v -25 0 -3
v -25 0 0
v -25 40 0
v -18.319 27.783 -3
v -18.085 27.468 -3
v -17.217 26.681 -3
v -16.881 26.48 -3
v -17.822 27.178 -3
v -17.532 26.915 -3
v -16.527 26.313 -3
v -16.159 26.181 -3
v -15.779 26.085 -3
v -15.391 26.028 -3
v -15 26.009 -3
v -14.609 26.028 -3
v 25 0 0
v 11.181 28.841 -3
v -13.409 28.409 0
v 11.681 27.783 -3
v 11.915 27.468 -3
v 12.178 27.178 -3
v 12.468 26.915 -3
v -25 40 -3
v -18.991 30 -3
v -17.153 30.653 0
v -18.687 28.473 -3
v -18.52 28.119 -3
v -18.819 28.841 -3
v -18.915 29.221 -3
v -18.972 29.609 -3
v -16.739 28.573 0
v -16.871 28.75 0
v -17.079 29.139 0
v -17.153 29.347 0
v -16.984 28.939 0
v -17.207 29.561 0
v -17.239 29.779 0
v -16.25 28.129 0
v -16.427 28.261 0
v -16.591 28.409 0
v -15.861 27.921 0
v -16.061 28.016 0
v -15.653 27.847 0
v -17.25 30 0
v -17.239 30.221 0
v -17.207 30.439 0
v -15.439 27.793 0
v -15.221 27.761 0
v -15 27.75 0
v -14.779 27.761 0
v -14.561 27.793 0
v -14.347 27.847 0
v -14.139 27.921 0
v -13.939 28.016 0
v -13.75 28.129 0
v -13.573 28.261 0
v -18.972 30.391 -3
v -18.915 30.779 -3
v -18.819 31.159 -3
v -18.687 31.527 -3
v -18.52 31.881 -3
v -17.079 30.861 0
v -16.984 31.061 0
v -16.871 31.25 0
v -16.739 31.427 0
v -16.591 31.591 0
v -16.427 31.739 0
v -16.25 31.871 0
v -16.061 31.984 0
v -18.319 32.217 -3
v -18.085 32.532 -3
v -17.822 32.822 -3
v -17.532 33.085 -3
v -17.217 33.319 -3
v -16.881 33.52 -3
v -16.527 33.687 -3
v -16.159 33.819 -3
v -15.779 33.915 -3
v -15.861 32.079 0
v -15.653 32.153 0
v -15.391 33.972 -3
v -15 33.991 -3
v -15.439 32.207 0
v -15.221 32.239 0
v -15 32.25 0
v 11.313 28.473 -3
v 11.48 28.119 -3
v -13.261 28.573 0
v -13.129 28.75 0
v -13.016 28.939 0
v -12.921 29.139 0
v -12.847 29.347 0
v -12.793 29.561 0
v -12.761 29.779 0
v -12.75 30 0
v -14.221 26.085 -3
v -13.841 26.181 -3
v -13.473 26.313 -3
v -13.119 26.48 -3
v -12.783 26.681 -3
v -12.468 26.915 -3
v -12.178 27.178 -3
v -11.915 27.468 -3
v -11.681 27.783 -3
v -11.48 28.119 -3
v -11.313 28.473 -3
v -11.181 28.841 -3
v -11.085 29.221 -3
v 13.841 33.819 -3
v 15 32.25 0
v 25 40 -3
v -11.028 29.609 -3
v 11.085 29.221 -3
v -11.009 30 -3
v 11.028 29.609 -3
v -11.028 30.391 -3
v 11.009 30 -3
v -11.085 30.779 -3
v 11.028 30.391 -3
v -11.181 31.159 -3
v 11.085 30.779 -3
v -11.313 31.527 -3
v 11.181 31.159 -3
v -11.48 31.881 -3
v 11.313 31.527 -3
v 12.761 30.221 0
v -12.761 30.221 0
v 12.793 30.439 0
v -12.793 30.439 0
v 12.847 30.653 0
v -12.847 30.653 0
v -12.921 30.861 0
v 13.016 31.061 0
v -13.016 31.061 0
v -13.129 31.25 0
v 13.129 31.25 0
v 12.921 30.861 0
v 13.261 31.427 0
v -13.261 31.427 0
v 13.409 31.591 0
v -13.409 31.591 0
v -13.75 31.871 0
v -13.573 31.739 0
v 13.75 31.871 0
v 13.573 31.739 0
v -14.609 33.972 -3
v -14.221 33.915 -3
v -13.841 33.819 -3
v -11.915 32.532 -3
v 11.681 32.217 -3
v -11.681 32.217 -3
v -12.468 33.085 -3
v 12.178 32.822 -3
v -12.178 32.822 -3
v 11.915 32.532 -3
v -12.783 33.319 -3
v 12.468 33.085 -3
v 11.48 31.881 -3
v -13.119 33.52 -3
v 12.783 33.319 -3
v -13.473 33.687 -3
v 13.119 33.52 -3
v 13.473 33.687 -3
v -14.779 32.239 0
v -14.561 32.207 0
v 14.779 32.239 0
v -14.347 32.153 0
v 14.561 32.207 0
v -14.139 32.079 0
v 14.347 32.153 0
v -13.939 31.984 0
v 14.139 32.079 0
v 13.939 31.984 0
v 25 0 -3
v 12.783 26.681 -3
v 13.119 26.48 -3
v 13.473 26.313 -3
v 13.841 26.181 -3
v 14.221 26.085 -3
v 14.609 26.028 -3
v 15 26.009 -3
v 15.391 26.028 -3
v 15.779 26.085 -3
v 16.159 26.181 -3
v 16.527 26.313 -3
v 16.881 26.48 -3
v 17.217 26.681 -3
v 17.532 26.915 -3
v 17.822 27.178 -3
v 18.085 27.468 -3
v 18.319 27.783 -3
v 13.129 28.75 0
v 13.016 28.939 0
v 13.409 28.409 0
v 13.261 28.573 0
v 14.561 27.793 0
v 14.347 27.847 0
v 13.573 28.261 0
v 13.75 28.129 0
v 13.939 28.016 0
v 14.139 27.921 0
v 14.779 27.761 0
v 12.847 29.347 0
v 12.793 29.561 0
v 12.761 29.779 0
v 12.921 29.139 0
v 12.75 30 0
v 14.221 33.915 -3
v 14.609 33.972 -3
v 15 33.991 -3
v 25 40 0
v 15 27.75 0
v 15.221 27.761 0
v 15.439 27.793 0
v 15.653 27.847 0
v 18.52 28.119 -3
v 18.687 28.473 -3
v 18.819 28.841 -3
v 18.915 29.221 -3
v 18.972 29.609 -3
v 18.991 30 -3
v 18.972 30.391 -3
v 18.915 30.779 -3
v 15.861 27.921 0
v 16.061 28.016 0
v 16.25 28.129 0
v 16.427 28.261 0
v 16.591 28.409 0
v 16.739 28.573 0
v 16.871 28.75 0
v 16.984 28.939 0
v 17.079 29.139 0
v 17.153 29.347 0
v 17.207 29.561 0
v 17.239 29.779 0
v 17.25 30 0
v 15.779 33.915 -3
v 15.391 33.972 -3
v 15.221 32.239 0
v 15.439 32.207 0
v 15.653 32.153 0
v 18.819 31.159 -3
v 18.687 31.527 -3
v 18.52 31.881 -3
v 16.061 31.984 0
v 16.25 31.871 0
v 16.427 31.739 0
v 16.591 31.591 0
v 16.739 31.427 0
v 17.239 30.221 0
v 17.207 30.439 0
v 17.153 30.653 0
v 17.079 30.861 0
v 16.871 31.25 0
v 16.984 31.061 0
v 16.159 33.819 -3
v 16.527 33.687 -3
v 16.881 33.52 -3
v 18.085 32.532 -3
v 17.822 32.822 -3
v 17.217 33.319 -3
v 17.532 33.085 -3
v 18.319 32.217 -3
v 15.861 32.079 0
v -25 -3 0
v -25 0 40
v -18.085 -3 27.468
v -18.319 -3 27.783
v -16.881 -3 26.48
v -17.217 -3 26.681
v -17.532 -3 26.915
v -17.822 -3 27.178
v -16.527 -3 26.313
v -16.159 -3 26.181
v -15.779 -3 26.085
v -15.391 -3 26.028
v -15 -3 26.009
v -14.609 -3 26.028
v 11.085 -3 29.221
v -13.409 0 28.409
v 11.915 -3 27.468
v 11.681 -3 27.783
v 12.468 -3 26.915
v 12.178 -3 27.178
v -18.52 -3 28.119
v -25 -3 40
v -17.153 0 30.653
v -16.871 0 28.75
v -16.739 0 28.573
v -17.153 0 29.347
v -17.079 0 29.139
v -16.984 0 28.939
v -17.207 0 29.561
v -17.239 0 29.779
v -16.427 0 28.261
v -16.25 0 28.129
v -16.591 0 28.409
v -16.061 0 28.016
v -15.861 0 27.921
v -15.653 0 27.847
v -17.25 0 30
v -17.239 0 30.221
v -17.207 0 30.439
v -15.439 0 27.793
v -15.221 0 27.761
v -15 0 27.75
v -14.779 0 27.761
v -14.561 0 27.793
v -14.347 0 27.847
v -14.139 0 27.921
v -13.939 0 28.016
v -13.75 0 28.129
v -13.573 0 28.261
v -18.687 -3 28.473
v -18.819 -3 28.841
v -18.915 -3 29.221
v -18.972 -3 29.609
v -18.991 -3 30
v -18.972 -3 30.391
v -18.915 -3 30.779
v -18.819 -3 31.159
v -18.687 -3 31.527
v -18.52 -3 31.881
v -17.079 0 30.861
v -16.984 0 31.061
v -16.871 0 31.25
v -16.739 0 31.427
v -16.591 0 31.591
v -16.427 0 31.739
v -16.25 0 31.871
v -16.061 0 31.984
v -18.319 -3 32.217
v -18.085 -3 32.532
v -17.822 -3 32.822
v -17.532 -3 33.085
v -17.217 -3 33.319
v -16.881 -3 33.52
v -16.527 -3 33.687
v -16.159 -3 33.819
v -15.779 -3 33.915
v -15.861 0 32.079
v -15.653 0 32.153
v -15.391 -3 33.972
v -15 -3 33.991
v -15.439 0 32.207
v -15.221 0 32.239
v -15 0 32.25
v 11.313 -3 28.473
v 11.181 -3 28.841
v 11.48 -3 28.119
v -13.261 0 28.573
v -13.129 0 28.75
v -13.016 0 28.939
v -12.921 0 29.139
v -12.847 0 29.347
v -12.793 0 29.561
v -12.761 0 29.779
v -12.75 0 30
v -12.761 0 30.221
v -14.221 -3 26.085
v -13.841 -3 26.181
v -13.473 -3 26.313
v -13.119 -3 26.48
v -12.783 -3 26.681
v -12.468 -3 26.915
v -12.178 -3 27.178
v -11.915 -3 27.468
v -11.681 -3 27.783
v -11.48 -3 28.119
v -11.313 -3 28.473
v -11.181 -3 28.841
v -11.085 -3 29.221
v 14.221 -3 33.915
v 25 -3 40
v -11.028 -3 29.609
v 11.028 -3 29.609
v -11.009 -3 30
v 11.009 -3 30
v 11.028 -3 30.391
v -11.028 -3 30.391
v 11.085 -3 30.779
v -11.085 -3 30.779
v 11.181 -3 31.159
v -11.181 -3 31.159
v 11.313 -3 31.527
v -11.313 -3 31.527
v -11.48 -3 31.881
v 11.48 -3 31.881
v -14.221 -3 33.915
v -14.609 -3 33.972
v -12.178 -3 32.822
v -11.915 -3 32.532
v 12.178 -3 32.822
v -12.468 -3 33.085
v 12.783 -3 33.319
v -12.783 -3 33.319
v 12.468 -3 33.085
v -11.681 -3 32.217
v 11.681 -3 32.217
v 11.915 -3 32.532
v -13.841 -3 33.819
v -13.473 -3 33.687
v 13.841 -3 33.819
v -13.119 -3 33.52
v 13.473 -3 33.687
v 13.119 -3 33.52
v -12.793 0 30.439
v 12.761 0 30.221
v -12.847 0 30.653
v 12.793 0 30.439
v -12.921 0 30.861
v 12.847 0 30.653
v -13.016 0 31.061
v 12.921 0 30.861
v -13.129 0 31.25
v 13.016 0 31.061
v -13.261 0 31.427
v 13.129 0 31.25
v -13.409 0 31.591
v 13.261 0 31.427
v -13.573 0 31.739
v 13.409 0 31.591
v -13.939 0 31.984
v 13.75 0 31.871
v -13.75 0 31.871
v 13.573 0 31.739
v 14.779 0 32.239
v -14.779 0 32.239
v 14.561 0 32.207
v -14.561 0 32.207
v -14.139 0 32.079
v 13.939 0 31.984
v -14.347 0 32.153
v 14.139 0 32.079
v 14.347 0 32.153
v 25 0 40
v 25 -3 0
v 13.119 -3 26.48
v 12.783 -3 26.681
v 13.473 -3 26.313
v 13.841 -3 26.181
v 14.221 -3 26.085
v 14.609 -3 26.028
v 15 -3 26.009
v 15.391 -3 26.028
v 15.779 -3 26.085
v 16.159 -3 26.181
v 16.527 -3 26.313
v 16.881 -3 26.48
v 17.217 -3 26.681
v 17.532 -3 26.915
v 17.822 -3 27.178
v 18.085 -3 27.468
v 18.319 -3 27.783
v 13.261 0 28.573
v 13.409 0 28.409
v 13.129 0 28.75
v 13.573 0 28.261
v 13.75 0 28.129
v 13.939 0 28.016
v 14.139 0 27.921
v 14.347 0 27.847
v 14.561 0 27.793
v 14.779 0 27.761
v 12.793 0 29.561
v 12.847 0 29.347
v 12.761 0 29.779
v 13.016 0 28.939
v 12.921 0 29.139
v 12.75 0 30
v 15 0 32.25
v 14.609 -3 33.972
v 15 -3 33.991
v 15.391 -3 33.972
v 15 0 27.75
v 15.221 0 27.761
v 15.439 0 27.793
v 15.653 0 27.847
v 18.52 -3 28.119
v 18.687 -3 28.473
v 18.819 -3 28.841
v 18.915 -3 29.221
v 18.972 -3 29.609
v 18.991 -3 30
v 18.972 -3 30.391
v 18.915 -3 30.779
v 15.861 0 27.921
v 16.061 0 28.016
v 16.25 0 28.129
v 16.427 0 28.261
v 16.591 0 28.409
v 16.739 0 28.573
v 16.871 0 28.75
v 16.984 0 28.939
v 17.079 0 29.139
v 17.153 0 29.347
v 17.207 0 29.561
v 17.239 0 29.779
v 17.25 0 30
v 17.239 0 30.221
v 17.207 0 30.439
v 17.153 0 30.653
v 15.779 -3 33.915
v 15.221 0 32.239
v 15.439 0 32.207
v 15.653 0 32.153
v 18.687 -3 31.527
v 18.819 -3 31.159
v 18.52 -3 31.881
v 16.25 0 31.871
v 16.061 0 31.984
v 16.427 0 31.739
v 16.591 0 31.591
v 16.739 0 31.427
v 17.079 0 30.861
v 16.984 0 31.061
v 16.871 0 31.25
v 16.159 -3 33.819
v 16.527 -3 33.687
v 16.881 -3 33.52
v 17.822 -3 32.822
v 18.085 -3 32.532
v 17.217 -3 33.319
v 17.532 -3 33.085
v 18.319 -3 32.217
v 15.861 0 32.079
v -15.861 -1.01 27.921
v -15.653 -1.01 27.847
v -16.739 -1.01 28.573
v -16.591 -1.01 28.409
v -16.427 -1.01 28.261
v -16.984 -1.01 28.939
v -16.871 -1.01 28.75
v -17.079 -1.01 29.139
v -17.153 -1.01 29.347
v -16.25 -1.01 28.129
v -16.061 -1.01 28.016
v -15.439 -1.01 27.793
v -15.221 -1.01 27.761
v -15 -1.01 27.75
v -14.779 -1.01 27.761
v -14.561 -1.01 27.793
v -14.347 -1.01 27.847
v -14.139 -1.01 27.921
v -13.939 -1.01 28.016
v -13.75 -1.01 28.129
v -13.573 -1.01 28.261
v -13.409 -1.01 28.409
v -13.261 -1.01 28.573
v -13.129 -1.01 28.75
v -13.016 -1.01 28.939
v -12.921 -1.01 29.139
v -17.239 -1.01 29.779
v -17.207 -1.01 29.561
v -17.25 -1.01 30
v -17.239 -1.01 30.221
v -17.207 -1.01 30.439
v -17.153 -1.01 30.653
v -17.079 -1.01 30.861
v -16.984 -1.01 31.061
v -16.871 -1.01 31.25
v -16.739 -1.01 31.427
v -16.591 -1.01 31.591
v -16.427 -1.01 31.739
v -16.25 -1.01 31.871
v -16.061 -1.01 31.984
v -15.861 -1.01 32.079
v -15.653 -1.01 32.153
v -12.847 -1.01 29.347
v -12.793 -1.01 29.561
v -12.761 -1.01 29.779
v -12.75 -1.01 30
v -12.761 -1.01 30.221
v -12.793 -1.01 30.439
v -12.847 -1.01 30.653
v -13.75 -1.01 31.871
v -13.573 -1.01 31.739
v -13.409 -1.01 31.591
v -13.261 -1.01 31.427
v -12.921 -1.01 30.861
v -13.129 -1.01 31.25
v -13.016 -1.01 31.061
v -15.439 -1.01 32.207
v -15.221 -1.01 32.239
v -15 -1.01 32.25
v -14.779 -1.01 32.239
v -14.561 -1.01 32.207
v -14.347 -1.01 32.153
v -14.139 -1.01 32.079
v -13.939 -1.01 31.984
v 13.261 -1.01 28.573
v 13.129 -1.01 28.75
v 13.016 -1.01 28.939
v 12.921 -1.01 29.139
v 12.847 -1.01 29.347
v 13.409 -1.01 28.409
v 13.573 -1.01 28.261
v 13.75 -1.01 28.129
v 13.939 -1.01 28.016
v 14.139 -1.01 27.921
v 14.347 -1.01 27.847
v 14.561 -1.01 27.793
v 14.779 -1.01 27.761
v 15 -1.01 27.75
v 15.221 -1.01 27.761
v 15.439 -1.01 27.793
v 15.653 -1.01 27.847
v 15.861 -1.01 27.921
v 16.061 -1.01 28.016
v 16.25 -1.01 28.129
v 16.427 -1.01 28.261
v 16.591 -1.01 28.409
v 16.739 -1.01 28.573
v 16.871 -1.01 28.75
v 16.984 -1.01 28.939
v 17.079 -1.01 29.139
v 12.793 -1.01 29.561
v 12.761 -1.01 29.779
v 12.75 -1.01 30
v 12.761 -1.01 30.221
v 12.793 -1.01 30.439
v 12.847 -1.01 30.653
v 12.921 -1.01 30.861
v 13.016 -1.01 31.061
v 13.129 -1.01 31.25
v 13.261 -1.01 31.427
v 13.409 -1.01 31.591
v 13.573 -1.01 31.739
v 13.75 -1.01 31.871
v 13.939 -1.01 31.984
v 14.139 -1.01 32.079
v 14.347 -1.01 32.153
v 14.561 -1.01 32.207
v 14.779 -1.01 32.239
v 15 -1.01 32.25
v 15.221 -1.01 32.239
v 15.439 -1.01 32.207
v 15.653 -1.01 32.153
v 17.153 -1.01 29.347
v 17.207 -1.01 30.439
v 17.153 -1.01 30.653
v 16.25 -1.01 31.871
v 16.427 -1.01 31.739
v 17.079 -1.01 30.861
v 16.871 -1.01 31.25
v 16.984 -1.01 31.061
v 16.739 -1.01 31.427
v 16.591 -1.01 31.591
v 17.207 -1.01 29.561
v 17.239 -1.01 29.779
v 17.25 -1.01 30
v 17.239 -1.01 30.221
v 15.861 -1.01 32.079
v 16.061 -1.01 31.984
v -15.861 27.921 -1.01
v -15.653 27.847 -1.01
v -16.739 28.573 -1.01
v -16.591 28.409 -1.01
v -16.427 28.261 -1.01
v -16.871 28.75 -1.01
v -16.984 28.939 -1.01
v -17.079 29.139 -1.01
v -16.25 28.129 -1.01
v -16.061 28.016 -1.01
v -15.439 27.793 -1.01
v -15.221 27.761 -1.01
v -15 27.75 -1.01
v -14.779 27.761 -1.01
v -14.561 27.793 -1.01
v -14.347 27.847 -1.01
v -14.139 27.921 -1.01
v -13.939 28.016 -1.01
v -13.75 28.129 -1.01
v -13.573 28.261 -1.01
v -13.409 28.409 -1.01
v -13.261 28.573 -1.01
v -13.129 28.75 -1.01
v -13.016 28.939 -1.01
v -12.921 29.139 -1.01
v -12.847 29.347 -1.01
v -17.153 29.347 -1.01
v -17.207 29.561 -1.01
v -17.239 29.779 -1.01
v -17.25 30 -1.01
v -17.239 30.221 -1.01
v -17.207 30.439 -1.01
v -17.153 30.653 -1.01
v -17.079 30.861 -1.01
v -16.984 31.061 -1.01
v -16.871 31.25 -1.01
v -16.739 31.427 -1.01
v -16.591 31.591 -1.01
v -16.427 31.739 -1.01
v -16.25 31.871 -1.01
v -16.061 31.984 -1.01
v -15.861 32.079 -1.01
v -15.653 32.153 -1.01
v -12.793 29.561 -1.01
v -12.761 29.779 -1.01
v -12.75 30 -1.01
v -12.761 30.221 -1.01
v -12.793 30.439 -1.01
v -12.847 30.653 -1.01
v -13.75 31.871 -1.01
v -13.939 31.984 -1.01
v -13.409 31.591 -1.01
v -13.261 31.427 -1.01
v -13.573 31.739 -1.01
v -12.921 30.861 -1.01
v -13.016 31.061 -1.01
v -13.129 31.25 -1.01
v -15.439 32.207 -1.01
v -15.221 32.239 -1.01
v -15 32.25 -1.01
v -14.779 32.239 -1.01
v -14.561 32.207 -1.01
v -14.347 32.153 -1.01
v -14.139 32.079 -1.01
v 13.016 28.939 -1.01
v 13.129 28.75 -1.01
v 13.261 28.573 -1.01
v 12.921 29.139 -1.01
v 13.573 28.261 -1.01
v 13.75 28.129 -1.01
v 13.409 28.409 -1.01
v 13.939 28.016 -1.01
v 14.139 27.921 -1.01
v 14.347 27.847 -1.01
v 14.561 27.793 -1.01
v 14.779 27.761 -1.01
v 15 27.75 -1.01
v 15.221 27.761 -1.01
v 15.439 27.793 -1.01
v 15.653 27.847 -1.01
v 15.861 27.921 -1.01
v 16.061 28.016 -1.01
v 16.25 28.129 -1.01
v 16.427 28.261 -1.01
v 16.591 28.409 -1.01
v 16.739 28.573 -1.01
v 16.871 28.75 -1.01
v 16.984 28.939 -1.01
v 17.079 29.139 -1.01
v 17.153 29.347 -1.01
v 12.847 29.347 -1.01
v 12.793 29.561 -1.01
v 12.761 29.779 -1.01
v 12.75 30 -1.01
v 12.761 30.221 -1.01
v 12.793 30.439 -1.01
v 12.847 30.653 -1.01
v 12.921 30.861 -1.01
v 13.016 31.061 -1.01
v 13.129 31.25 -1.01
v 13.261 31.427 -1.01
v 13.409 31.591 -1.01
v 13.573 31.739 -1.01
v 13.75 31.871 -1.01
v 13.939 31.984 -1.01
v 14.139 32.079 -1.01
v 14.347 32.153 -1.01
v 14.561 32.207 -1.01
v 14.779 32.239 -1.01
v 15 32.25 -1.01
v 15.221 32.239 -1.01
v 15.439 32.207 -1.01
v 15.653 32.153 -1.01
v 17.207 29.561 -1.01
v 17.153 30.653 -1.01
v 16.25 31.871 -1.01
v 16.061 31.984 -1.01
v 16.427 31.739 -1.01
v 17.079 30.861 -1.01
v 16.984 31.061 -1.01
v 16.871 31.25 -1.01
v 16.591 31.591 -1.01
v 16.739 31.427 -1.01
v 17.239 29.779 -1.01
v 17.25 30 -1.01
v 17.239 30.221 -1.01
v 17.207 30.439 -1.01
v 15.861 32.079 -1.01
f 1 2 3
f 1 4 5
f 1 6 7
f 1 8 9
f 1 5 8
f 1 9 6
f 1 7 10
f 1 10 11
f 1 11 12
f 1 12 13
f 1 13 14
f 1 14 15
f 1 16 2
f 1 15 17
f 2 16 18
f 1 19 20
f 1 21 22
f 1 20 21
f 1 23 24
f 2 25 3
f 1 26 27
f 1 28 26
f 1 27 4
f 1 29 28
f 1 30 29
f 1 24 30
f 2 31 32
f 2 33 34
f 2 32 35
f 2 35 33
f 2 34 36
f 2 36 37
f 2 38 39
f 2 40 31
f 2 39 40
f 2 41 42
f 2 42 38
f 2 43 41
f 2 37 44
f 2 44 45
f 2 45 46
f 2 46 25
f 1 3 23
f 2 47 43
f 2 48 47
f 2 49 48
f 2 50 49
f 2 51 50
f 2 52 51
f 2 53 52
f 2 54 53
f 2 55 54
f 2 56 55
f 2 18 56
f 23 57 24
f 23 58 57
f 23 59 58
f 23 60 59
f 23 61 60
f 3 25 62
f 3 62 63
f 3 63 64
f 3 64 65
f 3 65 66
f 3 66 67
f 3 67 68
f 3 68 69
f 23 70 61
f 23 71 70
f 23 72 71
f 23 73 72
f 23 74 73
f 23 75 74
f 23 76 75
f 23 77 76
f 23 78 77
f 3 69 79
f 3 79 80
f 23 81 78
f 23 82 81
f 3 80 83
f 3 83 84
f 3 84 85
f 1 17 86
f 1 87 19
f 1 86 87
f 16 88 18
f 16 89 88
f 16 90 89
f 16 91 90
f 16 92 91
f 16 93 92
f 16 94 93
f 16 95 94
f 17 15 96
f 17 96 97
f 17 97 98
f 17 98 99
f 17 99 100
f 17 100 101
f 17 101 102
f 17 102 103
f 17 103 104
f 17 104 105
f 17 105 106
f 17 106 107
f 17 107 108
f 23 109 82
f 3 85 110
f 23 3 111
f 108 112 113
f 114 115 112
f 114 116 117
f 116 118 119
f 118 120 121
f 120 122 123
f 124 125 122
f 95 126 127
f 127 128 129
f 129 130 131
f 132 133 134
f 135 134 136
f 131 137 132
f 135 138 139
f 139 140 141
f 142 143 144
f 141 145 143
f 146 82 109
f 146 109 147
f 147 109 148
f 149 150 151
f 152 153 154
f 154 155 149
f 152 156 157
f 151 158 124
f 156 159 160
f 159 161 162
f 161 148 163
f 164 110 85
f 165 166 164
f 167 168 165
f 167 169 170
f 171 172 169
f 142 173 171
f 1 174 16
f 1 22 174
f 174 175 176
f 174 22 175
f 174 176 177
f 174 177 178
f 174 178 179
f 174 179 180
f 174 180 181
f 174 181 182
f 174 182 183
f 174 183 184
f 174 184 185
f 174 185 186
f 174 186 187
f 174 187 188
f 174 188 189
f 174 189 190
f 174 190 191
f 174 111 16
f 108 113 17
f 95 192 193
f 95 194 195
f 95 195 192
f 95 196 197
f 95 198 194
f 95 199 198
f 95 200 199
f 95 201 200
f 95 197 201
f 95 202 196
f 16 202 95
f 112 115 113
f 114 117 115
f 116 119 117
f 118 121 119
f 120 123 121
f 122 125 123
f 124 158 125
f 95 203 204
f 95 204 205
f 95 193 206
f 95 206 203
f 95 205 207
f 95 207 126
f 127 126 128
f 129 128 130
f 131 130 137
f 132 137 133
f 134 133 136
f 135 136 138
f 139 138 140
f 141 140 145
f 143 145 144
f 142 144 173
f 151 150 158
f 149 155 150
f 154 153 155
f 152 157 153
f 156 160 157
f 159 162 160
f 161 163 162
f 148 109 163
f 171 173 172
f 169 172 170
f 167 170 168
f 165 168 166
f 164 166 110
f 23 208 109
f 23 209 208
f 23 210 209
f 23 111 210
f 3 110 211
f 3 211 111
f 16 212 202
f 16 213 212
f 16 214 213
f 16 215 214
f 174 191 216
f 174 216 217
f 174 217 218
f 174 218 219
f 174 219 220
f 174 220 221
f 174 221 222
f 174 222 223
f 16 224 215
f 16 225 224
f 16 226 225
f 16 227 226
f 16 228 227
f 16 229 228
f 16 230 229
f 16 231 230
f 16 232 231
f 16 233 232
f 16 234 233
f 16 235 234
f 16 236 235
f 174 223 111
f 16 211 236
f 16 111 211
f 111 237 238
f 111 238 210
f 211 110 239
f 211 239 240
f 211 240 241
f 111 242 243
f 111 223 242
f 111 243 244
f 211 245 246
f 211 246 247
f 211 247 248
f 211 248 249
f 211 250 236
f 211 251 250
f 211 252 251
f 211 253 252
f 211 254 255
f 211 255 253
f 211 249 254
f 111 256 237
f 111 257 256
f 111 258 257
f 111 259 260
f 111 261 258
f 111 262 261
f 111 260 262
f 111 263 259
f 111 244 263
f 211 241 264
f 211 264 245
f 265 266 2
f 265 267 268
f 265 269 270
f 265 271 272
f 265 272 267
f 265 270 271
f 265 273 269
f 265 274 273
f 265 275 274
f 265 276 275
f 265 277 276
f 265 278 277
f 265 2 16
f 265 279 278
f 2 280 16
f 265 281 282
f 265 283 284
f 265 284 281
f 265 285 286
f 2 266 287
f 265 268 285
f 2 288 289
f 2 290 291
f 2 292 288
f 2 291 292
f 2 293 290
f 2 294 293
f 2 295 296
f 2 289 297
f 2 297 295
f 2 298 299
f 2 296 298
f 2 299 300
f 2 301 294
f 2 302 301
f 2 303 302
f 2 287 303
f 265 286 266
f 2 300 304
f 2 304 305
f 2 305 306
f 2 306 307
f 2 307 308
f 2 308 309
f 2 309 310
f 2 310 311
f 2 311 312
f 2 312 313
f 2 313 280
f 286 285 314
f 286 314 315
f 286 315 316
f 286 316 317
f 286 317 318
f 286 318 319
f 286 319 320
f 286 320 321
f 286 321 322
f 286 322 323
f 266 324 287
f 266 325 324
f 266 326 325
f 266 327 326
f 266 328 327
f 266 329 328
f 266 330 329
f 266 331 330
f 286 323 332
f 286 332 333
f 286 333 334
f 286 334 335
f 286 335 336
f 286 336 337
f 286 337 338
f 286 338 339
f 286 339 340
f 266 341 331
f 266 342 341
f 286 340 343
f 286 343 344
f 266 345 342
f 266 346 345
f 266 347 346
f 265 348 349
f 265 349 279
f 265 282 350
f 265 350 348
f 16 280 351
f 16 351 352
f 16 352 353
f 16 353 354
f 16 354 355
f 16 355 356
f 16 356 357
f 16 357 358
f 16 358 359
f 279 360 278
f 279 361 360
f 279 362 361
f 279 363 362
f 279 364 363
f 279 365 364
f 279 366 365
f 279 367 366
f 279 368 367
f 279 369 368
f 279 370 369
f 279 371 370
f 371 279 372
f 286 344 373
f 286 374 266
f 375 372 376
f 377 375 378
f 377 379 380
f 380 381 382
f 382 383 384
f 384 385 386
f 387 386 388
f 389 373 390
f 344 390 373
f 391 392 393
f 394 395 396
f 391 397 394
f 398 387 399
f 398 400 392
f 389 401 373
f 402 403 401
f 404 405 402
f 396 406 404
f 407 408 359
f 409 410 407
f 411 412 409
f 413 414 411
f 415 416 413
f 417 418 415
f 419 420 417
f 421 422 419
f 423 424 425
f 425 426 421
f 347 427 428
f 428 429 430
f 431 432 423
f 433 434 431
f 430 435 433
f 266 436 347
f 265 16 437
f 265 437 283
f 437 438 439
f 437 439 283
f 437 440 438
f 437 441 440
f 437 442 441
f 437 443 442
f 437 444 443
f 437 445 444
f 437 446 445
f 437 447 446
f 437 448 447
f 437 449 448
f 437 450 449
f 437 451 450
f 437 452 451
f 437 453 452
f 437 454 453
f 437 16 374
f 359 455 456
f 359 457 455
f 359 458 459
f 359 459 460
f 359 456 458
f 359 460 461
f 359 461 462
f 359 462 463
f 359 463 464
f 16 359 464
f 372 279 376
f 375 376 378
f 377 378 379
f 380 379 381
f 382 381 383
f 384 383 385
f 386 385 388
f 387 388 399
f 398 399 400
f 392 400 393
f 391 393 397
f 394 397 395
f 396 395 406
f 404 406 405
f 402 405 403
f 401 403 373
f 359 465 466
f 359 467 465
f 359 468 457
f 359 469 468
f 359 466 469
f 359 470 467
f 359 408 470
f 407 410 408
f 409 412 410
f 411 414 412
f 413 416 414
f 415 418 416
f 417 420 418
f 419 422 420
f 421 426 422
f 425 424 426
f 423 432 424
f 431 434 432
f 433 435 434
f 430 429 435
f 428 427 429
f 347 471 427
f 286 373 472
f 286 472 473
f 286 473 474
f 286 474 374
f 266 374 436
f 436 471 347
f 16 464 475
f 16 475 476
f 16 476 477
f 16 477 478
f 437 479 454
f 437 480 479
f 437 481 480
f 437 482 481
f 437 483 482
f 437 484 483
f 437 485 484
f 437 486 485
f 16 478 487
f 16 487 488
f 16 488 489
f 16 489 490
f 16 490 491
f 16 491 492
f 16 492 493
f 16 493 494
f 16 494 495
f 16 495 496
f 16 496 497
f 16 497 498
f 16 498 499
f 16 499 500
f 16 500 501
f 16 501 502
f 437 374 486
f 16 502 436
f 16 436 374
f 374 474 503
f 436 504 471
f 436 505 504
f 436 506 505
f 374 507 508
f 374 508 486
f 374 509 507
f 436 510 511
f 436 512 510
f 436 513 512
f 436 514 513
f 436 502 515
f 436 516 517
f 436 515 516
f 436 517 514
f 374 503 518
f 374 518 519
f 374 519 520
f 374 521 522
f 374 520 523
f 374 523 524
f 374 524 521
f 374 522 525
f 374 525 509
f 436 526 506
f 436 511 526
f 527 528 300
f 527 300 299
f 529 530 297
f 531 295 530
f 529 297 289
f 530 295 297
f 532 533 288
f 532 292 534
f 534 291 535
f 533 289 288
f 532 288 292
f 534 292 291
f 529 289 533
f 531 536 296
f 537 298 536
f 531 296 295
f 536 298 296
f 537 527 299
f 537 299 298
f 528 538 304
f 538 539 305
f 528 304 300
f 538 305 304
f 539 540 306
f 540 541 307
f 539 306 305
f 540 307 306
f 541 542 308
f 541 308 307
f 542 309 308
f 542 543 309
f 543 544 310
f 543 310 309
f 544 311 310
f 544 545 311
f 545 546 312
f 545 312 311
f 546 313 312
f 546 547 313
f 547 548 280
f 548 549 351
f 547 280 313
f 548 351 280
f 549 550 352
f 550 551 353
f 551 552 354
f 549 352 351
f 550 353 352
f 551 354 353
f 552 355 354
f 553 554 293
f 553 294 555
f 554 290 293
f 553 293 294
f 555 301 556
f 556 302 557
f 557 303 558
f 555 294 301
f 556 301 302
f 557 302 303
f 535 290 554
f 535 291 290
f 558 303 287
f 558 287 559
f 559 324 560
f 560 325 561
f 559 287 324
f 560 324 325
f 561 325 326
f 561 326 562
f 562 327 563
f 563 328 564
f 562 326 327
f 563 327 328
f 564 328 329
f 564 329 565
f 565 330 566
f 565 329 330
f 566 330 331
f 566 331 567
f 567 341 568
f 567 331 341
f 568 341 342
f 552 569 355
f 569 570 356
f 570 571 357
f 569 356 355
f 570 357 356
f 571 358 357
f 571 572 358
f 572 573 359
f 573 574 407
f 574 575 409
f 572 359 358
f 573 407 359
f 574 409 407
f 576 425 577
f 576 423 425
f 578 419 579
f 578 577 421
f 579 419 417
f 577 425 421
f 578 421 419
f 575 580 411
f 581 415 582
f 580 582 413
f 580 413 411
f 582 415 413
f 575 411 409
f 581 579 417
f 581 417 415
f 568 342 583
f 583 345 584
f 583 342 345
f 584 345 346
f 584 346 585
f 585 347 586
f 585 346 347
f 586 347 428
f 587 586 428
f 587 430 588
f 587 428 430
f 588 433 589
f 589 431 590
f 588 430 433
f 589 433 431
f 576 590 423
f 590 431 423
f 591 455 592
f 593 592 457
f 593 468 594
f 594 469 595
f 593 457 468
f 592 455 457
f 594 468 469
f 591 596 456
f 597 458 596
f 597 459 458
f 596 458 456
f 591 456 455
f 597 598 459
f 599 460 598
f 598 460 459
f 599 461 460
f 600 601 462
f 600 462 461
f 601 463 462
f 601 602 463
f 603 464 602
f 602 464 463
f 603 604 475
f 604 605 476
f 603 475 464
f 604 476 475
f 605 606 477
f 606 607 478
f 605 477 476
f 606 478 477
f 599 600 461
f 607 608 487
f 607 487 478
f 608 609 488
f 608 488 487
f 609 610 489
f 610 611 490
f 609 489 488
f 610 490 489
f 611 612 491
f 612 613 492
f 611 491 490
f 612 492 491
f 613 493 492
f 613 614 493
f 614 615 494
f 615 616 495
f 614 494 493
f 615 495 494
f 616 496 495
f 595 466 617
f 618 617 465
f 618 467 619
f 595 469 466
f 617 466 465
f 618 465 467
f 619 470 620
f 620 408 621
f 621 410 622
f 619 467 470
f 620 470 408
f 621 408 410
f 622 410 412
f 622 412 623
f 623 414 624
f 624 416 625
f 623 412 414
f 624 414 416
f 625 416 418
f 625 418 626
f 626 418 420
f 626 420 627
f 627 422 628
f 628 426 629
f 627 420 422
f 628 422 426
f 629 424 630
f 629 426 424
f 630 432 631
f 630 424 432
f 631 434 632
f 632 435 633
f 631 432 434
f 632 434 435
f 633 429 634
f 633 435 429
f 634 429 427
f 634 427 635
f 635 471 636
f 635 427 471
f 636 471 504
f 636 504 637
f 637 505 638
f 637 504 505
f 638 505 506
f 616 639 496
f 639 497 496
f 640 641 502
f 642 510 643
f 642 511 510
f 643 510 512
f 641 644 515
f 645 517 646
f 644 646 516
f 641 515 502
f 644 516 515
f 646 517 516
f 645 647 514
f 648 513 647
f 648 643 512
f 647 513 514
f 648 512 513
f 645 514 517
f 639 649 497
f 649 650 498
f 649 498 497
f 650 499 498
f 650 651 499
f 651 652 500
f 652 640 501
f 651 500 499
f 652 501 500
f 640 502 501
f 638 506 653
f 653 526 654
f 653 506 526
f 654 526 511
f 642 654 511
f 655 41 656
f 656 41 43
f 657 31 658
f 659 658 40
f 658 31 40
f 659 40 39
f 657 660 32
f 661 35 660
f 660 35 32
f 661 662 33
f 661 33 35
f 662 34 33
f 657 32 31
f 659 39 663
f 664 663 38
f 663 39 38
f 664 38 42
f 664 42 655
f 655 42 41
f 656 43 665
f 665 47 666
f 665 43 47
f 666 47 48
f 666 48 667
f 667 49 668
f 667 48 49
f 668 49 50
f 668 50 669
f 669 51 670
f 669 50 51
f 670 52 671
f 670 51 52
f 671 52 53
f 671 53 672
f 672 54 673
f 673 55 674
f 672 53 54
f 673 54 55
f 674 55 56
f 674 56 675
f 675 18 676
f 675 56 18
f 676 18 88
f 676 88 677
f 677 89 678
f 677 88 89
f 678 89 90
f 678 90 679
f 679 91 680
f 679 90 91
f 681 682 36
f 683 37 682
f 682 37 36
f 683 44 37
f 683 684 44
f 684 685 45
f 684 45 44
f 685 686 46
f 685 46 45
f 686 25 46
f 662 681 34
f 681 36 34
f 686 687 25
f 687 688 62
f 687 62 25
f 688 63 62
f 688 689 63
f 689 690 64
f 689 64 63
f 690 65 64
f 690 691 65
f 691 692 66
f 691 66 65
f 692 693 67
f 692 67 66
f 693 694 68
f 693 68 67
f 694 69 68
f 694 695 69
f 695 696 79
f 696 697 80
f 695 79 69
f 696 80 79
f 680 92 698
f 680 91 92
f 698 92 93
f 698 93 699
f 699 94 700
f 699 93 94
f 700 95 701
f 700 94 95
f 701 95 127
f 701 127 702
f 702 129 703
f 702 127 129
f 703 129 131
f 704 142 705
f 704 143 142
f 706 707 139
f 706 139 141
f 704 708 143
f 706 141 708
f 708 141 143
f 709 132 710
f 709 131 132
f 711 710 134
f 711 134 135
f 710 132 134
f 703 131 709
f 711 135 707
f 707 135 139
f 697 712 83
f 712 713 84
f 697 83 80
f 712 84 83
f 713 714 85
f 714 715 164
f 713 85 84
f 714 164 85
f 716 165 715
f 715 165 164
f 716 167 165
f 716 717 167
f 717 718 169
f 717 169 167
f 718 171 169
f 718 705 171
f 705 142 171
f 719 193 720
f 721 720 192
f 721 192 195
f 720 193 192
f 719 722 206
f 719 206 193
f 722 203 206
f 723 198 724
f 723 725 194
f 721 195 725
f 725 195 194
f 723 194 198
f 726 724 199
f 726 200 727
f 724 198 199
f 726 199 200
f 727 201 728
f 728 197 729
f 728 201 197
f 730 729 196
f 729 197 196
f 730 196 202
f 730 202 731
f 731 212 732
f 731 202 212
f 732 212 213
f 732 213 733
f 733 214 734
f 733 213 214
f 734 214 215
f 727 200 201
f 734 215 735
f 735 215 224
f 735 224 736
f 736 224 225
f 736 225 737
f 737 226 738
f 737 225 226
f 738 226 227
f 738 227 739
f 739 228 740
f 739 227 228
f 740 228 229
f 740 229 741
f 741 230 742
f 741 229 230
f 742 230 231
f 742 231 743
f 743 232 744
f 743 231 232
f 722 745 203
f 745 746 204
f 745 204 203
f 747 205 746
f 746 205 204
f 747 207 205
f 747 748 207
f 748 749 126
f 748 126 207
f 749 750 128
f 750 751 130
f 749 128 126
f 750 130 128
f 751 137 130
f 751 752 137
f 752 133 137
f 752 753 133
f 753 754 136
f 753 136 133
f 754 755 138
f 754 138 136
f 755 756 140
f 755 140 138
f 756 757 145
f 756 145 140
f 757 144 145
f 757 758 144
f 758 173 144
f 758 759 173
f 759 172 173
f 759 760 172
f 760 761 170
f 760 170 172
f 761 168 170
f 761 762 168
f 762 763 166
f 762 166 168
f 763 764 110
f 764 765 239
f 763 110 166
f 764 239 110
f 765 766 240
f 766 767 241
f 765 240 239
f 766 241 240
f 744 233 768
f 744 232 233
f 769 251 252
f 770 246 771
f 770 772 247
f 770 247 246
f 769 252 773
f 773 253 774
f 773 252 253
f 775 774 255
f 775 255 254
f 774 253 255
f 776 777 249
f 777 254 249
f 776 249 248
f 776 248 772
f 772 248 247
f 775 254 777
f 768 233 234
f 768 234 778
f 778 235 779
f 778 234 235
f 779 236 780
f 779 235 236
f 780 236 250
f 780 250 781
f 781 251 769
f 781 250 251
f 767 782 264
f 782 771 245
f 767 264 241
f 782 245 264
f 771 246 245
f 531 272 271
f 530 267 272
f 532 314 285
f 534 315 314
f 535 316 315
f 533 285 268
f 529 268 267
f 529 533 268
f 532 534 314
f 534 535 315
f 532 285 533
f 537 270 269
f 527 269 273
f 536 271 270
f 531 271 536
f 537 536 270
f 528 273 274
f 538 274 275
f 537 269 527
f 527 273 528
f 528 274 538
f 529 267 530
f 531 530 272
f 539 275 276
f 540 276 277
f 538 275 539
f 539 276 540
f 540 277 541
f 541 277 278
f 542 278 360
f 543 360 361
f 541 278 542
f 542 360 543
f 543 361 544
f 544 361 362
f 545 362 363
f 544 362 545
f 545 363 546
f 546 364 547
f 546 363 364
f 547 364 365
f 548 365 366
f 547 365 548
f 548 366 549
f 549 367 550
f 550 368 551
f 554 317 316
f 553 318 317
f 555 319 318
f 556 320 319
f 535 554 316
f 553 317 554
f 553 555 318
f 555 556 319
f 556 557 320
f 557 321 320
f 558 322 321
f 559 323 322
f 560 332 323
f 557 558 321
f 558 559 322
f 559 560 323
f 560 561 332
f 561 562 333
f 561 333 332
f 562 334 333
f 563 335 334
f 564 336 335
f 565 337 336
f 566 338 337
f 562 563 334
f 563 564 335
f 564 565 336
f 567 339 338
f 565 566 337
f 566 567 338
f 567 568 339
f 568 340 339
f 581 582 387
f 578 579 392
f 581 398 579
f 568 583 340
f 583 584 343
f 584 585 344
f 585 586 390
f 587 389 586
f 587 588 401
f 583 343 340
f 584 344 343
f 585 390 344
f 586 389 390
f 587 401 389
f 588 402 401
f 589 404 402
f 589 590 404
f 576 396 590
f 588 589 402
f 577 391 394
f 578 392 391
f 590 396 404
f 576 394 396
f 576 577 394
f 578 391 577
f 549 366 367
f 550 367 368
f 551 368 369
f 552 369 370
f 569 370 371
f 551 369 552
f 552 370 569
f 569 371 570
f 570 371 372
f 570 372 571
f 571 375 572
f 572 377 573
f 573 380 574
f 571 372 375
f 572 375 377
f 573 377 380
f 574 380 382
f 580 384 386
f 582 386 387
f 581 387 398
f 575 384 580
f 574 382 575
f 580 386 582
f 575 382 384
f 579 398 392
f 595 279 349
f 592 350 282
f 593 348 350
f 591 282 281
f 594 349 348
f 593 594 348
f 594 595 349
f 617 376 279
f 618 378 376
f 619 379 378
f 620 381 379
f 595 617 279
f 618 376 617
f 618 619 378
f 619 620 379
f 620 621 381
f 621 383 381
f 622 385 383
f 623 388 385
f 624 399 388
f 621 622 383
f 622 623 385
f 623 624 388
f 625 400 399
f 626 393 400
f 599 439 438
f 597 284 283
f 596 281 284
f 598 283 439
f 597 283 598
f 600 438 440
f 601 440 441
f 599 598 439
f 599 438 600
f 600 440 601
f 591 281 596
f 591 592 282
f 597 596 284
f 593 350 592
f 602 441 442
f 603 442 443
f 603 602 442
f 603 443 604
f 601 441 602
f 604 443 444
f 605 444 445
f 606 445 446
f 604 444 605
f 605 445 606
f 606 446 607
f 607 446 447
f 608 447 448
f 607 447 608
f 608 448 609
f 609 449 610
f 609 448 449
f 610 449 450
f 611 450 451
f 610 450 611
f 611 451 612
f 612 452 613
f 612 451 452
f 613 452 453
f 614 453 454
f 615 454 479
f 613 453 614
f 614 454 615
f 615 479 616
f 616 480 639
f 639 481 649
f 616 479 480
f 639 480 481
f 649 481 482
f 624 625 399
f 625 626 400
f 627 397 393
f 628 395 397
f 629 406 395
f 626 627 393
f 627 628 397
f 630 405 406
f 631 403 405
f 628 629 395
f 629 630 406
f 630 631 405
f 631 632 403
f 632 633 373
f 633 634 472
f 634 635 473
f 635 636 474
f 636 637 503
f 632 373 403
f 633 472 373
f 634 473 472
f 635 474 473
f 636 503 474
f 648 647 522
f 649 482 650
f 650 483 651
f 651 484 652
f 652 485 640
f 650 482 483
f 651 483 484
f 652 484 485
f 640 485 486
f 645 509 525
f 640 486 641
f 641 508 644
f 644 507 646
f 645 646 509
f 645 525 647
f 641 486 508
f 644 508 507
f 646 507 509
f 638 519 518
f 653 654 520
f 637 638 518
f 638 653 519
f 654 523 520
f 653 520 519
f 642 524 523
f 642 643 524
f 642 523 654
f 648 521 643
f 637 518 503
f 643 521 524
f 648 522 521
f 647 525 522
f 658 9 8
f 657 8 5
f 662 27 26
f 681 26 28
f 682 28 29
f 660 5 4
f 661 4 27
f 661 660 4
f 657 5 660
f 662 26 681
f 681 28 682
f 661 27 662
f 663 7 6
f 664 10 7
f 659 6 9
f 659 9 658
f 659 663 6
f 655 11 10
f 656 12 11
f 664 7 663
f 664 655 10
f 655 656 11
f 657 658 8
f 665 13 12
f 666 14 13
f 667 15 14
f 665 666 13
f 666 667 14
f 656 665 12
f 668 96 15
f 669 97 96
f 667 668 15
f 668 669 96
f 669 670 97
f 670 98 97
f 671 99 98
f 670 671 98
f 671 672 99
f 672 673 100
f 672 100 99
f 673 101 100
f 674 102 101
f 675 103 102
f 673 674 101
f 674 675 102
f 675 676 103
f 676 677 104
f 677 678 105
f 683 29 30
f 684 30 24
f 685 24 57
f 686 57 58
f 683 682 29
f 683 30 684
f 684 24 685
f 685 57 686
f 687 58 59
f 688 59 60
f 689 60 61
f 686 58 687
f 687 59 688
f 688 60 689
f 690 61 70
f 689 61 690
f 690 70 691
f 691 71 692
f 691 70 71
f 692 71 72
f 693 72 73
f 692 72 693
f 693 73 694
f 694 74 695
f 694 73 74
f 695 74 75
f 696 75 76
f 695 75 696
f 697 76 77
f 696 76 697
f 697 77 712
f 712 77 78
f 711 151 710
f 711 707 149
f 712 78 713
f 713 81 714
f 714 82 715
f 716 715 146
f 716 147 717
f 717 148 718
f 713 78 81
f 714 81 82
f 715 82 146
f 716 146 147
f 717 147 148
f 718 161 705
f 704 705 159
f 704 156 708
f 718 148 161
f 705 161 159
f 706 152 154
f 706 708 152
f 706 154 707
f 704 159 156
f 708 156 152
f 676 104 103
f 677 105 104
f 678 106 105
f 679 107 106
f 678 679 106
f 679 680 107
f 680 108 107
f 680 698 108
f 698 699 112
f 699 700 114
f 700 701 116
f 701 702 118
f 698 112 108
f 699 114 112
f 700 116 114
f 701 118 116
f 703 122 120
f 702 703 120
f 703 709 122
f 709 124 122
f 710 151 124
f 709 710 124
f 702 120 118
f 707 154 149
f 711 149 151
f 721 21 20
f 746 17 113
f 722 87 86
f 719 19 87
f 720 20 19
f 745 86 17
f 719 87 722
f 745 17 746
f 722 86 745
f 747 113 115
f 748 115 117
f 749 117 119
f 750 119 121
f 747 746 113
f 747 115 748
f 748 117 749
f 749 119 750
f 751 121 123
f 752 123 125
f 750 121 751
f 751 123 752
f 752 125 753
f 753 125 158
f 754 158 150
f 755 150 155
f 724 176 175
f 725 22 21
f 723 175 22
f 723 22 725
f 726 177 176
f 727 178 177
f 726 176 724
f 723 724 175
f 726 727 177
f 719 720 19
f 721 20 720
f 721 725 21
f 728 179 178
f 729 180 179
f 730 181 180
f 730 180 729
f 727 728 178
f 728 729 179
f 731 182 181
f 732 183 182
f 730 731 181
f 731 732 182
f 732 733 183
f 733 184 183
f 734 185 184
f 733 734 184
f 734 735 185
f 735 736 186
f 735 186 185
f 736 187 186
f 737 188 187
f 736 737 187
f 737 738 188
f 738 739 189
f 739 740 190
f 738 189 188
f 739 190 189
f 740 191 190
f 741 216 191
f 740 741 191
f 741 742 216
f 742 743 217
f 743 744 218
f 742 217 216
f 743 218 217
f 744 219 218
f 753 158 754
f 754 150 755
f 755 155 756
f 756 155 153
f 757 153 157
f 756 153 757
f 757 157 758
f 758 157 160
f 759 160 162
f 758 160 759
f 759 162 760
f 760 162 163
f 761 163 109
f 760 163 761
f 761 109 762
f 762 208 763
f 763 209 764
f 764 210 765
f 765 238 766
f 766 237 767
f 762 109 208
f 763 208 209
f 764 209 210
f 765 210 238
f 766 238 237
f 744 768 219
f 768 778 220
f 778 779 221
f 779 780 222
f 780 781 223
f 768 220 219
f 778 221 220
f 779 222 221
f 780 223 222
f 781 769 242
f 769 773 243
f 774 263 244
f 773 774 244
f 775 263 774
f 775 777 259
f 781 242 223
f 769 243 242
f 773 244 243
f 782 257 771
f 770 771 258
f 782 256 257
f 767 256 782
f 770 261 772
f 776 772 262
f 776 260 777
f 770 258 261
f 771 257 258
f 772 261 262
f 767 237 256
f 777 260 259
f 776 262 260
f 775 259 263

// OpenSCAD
// L-bracket with countersunk holes
$fn = 64;

W  = 50;   // 幅
D  = 40;   // 水平面の奥行き
H  = 40;   // 垂直面の高さ
T  = 3;    // 板厚

HOLE_D  = 4.5;  // 貫通穴径
CS_D    = 8;    // 皿座面径
CS_DEPTH= 2;    // 皿深さ

EDGE = 10;      // 縁からの距離
XOFF = W/2 - EDGE;   // ±15
POS  = D - EDGE;     // 30 (外側の縁から10mm内側)

// 皿穴(z-方向に貫通、皿は -Z 側=外側)
module csk_hole(len) {
    translate([0, 0, -1])
        cylinder(d = HOLE_D, h = len + 2);
    translate([0, 0, -0.01])
        cylinder(d1 = CS_D, d2 = HOLE_D, h = CS_DEPTH);
}

difference() {
    union() {
        // 水平フランジ (+Y 方向)
        translate([-W/2, 0, -T]) cube([W, D, T]);
        // 垂直フランジ (+Z 方向)
        translate([-W/2, -T, 0]) cube([W, T, H]);
    }

    // 水平面の皿穴(皿は下面 = 外側)
    for (x = [-XOFF, XOFF])
        translate([x, POS, -T]) csk_hole(T);

    // 垂直面の皿穴(皿は -Y 面 = 外側)
    for (x = [-XOFF, XOFF])
        translate([x, -T, POS]) rotate([-90, 0, 0]) csk_hole(T);
}
